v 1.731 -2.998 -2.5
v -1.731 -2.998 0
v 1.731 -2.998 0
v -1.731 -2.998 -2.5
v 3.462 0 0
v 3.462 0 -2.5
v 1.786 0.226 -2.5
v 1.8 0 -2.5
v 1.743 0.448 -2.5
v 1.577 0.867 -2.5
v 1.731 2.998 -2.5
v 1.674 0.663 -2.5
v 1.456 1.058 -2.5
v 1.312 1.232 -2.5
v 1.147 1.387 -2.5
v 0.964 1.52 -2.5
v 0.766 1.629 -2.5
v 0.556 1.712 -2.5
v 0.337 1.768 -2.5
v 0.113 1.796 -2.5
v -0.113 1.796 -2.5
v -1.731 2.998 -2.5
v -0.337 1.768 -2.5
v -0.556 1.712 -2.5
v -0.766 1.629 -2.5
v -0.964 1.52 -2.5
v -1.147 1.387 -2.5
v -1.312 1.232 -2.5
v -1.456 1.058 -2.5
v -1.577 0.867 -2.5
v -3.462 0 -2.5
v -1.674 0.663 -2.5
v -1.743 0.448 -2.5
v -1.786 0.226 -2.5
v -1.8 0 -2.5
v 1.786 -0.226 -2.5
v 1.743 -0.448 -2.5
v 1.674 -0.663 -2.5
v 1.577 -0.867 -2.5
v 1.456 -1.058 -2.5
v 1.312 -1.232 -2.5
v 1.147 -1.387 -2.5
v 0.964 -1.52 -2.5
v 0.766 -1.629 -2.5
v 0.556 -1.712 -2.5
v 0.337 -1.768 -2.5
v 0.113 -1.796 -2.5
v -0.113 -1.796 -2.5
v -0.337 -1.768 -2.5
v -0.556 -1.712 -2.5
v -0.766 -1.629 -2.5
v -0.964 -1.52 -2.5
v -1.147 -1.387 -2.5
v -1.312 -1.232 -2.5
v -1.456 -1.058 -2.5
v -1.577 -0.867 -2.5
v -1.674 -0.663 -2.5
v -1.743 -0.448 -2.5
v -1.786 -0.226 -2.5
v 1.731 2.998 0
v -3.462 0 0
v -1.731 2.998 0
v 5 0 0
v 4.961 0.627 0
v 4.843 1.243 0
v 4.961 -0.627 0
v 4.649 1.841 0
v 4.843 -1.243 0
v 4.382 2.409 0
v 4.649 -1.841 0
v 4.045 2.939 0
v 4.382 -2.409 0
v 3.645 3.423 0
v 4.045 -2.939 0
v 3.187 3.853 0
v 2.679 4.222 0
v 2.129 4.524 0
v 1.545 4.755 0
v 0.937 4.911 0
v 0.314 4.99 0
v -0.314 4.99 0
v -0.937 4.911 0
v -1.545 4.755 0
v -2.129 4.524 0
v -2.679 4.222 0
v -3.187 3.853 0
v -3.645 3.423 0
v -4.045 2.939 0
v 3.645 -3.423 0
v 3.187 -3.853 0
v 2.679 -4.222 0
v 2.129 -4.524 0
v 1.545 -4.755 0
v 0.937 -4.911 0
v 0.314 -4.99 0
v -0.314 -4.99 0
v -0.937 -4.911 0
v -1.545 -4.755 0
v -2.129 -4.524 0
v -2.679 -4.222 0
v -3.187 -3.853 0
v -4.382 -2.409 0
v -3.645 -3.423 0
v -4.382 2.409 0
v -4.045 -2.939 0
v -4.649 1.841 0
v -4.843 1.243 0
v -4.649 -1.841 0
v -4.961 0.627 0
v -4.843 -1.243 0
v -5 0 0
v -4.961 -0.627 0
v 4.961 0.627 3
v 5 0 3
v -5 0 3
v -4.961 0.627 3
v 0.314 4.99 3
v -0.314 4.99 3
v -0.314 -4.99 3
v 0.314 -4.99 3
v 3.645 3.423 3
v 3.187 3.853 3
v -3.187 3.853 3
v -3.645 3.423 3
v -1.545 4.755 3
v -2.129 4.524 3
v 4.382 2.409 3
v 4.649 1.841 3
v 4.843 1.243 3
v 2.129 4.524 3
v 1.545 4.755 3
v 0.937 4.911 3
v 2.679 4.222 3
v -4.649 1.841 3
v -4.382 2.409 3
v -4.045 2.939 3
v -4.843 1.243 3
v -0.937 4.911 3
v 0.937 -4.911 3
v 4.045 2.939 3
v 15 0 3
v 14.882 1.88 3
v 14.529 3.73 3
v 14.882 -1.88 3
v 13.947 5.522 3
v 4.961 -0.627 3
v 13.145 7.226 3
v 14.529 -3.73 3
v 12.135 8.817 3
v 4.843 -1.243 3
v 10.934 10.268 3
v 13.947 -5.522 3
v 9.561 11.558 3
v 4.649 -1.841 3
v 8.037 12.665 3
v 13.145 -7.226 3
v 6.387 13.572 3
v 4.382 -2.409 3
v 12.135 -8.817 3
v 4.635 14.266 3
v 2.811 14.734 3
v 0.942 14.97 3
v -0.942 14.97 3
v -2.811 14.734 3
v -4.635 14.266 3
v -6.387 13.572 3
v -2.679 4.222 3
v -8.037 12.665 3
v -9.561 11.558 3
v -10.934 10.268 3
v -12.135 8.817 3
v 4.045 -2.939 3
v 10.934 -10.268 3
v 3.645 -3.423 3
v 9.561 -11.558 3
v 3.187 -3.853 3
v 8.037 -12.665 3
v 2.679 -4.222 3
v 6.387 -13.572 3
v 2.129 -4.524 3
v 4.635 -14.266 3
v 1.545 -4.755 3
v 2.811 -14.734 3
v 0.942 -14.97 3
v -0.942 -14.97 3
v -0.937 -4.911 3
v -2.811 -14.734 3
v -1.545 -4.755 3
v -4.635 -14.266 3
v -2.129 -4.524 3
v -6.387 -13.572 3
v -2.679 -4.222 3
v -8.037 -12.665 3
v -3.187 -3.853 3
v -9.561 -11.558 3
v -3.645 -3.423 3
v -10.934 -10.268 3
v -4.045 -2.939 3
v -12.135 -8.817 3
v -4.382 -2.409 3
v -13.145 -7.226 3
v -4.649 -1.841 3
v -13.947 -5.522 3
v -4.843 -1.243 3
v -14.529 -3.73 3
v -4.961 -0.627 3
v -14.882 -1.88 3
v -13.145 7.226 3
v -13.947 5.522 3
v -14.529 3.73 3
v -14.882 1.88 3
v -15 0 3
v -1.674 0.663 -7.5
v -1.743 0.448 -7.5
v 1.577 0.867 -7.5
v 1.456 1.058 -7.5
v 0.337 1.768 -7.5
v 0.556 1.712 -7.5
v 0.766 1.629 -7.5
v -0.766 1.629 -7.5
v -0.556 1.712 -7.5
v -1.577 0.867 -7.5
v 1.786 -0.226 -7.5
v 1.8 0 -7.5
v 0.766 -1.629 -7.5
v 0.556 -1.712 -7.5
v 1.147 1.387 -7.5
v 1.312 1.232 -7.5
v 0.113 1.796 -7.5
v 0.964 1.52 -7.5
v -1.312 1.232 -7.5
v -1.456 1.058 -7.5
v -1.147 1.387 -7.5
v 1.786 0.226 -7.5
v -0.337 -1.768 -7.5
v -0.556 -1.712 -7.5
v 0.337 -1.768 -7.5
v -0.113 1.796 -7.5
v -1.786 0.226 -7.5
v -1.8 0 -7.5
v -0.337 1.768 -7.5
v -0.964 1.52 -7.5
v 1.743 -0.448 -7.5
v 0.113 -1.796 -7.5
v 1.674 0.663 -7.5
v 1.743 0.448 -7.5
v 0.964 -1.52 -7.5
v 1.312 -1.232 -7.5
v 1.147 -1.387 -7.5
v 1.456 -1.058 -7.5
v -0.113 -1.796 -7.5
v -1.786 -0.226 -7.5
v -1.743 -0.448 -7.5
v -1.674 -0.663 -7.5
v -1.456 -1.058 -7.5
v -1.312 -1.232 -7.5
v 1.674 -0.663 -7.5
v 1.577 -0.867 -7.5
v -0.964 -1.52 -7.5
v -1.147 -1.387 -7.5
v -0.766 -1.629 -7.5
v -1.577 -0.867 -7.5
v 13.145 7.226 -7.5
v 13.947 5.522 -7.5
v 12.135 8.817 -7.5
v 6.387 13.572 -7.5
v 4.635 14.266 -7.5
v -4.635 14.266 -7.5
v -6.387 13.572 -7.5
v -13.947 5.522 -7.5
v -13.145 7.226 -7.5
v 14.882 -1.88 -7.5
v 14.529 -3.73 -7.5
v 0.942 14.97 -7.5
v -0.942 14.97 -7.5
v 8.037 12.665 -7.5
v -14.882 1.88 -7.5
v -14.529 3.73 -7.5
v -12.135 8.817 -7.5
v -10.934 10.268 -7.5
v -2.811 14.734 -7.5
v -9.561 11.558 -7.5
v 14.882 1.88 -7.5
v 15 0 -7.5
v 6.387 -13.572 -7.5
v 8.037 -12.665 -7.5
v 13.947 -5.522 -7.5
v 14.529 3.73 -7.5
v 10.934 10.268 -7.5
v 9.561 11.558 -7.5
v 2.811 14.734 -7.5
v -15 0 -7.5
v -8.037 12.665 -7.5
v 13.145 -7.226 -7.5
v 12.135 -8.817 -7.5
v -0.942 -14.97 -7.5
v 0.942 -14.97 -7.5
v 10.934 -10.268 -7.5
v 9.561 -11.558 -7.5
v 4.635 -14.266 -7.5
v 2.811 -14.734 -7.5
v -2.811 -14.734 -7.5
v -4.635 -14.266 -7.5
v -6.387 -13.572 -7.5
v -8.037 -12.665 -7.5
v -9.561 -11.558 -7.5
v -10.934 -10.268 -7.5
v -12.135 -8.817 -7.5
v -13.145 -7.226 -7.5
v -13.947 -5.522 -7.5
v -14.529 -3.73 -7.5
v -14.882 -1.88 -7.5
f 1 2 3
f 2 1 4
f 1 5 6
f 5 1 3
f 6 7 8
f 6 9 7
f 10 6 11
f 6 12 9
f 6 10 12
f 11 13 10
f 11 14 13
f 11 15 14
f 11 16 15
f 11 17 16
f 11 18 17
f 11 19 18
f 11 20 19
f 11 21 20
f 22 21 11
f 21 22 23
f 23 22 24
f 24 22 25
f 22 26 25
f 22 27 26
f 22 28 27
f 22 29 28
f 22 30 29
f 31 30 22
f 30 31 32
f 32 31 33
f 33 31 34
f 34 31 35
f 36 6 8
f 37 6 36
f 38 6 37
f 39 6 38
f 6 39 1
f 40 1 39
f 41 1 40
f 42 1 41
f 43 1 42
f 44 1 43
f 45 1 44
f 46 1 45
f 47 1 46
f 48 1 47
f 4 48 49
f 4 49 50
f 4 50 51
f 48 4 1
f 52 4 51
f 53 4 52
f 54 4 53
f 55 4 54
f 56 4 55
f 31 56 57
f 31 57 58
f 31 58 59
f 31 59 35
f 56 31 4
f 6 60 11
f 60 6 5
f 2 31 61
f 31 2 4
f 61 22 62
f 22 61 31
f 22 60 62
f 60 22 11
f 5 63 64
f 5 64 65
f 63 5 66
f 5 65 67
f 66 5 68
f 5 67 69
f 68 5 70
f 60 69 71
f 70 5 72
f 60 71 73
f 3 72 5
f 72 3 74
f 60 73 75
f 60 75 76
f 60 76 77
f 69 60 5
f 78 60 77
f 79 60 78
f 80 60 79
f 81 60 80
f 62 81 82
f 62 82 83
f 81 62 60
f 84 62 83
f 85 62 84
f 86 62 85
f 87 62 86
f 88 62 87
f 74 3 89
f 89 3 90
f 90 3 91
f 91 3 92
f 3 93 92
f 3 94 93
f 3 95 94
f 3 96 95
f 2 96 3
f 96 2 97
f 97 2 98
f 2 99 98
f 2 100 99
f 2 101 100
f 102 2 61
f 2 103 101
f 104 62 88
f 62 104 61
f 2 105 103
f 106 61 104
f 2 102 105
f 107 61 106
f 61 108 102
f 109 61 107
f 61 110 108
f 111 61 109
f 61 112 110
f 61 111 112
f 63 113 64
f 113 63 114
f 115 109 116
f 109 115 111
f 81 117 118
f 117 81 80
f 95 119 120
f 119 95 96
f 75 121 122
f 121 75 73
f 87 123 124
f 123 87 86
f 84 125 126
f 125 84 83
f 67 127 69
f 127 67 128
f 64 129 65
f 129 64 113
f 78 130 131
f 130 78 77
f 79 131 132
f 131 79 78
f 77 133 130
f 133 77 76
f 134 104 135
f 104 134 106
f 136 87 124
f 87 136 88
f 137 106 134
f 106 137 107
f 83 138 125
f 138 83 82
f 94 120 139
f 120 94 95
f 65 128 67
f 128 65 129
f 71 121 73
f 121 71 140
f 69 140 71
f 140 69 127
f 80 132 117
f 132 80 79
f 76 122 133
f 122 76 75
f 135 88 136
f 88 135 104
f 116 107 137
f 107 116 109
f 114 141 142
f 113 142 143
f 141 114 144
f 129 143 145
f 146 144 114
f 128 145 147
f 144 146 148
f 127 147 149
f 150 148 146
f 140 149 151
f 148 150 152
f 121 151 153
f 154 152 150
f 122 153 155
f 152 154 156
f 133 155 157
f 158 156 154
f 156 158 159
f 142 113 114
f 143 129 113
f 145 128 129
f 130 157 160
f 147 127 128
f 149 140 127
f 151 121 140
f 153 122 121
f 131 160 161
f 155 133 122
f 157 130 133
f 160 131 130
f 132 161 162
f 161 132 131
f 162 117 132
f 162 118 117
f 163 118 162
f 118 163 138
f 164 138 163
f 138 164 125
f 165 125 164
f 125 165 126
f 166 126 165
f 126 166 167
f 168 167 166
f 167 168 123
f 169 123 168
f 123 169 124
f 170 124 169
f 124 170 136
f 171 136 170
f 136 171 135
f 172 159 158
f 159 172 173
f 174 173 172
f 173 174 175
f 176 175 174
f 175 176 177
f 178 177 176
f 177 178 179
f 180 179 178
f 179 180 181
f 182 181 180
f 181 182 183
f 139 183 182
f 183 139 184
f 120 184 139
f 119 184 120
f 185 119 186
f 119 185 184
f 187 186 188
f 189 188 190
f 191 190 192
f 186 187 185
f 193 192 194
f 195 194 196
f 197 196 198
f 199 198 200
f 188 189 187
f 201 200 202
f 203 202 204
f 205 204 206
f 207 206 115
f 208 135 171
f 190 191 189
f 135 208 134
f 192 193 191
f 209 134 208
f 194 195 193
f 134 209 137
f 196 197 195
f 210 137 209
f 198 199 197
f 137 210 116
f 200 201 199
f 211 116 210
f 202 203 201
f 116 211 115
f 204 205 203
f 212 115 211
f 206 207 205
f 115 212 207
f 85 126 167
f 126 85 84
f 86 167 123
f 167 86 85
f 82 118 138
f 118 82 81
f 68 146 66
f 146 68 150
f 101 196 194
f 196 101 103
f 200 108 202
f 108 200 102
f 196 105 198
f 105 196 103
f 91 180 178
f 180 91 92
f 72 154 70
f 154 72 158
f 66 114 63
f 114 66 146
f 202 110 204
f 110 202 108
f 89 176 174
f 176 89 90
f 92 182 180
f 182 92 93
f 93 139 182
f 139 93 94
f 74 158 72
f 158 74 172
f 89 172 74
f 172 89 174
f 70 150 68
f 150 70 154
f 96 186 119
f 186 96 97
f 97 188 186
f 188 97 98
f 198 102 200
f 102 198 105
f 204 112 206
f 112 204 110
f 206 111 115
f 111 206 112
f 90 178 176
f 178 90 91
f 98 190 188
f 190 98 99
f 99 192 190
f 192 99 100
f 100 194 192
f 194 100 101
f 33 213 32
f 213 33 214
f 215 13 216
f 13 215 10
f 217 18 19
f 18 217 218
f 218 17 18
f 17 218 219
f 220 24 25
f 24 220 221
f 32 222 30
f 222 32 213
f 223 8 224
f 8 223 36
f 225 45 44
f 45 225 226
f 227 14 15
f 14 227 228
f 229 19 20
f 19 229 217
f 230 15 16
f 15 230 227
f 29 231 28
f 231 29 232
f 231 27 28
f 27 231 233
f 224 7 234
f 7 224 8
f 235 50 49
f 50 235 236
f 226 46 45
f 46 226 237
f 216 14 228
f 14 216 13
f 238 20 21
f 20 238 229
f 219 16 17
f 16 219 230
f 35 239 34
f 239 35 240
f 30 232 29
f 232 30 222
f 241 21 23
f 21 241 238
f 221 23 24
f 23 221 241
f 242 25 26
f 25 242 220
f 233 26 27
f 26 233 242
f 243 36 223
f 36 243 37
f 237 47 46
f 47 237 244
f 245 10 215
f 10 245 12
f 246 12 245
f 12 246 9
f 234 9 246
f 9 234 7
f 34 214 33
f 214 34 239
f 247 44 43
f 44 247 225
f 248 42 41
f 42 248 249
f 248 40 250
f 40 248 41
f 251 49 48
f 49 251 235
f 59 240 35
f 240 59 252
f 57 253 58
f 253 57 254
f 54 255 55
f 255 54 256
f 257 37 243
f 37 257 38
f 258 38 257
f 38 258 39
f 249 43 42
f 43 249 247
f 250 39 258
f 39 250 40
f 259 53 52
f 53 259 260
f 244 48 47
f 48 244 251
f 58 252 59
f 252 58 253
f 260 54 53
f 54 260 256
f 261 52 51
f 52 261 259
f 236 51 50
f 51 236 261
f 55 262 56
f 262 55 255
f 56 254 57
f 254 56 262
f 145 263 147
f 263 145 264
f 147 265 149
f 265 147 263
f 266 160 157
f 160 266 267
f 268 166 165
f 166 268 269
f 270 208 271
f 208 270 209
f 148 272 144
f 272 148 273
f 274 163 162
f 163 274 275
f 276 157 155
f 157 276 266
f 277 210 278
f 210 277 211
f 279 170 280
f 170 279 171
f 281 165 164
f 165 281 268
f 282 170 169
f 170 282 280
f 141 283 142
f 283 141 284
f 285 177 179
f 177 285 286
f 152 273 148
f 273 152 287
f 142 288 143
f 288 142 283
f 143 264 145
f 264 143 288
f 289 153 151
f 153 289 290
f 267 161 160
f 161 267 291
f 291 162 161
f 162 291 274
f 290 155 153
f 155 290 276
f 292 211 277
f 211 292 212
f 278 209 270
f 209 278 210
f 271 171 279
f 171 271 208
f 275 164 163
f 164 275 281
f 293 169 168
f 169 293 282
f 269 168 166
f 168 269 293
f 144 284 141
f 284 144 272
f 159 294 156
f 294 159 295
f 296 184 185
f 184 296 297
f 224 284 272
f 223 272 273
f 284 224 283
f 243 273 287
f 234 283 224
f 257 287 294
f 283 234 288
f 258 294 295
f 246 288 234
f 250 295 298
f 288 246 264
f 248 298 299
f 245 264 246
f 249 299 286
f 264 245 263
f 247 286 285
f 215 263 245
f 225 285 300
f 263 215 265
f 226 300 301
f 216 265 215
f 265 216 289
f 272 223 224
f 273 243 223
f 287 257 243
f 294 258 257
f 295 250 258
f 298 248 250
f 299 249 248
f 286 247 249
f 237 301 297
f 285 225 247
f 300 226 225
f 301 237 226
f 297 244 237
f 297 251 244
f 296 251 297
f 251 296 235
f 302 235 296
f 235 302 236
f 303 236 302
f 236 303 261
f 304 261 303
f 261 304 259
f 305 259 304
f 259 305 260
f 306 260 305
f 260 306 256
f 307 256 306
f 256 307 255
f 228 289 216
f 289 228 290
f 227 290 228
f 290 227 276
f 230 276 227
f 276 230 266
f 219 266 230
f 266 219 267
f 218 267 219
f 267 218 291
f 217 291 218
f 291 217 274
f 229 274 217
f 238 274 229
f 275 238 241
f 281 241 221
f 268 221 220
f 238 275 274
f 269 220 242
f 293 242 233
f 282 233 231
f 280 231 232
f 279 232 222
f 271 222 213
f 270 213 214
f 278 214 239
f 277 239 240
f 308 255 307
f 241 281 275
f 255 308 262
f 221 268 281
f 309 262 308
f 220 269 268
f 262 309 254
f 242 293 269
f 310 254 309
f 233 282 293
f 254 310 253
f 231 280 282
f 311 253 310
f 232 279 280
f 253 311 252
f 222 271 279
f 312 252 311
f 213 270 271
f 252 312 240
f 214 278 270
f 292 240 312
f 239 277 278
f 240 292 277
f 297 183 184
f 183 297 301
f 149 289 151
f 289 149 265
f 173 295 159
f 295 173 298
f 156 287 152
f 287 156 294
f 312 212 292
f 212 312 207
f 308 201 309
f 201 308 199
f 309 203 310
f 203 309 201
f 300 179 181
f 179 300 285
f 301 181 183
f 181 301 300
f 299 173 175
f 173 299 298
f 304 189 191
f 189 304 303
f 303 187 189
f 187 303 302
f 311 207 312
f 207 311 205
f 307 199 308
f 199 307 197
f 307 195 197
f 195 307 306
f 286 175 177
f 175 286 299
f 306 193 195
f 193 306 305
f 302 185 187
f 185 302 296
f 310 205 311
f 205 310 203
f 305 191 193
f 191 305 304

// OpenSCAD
$fn = 50;


difference() {
	union() {
		translate(v = [0, 0, -7.5000000000]) {
			cylinder(h = 10.5000000000, r = 15.0000000000);
		}
	}
	union() {
		translate(v = [0, 0, 0]) {
			rotate(a = [0, 0, 0]) {
				difference() {
					union() {
						translate(v = [0, 0, -2.5000000000]) {
							linear_extrude(height = 2.5000000000) {
								polygon(points = [[3.4620000000, 0.0000000000], [1.7310000000, 2.9981799479], [-1.7310000000, 2.9981799479], [-3.4620000000, 0.0000000000], [-1.7310000000, -2.9981799479], [1.7310000000, -2.9981799479]]);
							}
						}
					}
					union();
				}
			}
		}
		#cylinder(h = 3, r = 5.0000000000);
		#translate(v = [0, 0, -100.0000000000]) {
			cylinder(h = 200, r = 1.8000000000);
		}
	}
}
